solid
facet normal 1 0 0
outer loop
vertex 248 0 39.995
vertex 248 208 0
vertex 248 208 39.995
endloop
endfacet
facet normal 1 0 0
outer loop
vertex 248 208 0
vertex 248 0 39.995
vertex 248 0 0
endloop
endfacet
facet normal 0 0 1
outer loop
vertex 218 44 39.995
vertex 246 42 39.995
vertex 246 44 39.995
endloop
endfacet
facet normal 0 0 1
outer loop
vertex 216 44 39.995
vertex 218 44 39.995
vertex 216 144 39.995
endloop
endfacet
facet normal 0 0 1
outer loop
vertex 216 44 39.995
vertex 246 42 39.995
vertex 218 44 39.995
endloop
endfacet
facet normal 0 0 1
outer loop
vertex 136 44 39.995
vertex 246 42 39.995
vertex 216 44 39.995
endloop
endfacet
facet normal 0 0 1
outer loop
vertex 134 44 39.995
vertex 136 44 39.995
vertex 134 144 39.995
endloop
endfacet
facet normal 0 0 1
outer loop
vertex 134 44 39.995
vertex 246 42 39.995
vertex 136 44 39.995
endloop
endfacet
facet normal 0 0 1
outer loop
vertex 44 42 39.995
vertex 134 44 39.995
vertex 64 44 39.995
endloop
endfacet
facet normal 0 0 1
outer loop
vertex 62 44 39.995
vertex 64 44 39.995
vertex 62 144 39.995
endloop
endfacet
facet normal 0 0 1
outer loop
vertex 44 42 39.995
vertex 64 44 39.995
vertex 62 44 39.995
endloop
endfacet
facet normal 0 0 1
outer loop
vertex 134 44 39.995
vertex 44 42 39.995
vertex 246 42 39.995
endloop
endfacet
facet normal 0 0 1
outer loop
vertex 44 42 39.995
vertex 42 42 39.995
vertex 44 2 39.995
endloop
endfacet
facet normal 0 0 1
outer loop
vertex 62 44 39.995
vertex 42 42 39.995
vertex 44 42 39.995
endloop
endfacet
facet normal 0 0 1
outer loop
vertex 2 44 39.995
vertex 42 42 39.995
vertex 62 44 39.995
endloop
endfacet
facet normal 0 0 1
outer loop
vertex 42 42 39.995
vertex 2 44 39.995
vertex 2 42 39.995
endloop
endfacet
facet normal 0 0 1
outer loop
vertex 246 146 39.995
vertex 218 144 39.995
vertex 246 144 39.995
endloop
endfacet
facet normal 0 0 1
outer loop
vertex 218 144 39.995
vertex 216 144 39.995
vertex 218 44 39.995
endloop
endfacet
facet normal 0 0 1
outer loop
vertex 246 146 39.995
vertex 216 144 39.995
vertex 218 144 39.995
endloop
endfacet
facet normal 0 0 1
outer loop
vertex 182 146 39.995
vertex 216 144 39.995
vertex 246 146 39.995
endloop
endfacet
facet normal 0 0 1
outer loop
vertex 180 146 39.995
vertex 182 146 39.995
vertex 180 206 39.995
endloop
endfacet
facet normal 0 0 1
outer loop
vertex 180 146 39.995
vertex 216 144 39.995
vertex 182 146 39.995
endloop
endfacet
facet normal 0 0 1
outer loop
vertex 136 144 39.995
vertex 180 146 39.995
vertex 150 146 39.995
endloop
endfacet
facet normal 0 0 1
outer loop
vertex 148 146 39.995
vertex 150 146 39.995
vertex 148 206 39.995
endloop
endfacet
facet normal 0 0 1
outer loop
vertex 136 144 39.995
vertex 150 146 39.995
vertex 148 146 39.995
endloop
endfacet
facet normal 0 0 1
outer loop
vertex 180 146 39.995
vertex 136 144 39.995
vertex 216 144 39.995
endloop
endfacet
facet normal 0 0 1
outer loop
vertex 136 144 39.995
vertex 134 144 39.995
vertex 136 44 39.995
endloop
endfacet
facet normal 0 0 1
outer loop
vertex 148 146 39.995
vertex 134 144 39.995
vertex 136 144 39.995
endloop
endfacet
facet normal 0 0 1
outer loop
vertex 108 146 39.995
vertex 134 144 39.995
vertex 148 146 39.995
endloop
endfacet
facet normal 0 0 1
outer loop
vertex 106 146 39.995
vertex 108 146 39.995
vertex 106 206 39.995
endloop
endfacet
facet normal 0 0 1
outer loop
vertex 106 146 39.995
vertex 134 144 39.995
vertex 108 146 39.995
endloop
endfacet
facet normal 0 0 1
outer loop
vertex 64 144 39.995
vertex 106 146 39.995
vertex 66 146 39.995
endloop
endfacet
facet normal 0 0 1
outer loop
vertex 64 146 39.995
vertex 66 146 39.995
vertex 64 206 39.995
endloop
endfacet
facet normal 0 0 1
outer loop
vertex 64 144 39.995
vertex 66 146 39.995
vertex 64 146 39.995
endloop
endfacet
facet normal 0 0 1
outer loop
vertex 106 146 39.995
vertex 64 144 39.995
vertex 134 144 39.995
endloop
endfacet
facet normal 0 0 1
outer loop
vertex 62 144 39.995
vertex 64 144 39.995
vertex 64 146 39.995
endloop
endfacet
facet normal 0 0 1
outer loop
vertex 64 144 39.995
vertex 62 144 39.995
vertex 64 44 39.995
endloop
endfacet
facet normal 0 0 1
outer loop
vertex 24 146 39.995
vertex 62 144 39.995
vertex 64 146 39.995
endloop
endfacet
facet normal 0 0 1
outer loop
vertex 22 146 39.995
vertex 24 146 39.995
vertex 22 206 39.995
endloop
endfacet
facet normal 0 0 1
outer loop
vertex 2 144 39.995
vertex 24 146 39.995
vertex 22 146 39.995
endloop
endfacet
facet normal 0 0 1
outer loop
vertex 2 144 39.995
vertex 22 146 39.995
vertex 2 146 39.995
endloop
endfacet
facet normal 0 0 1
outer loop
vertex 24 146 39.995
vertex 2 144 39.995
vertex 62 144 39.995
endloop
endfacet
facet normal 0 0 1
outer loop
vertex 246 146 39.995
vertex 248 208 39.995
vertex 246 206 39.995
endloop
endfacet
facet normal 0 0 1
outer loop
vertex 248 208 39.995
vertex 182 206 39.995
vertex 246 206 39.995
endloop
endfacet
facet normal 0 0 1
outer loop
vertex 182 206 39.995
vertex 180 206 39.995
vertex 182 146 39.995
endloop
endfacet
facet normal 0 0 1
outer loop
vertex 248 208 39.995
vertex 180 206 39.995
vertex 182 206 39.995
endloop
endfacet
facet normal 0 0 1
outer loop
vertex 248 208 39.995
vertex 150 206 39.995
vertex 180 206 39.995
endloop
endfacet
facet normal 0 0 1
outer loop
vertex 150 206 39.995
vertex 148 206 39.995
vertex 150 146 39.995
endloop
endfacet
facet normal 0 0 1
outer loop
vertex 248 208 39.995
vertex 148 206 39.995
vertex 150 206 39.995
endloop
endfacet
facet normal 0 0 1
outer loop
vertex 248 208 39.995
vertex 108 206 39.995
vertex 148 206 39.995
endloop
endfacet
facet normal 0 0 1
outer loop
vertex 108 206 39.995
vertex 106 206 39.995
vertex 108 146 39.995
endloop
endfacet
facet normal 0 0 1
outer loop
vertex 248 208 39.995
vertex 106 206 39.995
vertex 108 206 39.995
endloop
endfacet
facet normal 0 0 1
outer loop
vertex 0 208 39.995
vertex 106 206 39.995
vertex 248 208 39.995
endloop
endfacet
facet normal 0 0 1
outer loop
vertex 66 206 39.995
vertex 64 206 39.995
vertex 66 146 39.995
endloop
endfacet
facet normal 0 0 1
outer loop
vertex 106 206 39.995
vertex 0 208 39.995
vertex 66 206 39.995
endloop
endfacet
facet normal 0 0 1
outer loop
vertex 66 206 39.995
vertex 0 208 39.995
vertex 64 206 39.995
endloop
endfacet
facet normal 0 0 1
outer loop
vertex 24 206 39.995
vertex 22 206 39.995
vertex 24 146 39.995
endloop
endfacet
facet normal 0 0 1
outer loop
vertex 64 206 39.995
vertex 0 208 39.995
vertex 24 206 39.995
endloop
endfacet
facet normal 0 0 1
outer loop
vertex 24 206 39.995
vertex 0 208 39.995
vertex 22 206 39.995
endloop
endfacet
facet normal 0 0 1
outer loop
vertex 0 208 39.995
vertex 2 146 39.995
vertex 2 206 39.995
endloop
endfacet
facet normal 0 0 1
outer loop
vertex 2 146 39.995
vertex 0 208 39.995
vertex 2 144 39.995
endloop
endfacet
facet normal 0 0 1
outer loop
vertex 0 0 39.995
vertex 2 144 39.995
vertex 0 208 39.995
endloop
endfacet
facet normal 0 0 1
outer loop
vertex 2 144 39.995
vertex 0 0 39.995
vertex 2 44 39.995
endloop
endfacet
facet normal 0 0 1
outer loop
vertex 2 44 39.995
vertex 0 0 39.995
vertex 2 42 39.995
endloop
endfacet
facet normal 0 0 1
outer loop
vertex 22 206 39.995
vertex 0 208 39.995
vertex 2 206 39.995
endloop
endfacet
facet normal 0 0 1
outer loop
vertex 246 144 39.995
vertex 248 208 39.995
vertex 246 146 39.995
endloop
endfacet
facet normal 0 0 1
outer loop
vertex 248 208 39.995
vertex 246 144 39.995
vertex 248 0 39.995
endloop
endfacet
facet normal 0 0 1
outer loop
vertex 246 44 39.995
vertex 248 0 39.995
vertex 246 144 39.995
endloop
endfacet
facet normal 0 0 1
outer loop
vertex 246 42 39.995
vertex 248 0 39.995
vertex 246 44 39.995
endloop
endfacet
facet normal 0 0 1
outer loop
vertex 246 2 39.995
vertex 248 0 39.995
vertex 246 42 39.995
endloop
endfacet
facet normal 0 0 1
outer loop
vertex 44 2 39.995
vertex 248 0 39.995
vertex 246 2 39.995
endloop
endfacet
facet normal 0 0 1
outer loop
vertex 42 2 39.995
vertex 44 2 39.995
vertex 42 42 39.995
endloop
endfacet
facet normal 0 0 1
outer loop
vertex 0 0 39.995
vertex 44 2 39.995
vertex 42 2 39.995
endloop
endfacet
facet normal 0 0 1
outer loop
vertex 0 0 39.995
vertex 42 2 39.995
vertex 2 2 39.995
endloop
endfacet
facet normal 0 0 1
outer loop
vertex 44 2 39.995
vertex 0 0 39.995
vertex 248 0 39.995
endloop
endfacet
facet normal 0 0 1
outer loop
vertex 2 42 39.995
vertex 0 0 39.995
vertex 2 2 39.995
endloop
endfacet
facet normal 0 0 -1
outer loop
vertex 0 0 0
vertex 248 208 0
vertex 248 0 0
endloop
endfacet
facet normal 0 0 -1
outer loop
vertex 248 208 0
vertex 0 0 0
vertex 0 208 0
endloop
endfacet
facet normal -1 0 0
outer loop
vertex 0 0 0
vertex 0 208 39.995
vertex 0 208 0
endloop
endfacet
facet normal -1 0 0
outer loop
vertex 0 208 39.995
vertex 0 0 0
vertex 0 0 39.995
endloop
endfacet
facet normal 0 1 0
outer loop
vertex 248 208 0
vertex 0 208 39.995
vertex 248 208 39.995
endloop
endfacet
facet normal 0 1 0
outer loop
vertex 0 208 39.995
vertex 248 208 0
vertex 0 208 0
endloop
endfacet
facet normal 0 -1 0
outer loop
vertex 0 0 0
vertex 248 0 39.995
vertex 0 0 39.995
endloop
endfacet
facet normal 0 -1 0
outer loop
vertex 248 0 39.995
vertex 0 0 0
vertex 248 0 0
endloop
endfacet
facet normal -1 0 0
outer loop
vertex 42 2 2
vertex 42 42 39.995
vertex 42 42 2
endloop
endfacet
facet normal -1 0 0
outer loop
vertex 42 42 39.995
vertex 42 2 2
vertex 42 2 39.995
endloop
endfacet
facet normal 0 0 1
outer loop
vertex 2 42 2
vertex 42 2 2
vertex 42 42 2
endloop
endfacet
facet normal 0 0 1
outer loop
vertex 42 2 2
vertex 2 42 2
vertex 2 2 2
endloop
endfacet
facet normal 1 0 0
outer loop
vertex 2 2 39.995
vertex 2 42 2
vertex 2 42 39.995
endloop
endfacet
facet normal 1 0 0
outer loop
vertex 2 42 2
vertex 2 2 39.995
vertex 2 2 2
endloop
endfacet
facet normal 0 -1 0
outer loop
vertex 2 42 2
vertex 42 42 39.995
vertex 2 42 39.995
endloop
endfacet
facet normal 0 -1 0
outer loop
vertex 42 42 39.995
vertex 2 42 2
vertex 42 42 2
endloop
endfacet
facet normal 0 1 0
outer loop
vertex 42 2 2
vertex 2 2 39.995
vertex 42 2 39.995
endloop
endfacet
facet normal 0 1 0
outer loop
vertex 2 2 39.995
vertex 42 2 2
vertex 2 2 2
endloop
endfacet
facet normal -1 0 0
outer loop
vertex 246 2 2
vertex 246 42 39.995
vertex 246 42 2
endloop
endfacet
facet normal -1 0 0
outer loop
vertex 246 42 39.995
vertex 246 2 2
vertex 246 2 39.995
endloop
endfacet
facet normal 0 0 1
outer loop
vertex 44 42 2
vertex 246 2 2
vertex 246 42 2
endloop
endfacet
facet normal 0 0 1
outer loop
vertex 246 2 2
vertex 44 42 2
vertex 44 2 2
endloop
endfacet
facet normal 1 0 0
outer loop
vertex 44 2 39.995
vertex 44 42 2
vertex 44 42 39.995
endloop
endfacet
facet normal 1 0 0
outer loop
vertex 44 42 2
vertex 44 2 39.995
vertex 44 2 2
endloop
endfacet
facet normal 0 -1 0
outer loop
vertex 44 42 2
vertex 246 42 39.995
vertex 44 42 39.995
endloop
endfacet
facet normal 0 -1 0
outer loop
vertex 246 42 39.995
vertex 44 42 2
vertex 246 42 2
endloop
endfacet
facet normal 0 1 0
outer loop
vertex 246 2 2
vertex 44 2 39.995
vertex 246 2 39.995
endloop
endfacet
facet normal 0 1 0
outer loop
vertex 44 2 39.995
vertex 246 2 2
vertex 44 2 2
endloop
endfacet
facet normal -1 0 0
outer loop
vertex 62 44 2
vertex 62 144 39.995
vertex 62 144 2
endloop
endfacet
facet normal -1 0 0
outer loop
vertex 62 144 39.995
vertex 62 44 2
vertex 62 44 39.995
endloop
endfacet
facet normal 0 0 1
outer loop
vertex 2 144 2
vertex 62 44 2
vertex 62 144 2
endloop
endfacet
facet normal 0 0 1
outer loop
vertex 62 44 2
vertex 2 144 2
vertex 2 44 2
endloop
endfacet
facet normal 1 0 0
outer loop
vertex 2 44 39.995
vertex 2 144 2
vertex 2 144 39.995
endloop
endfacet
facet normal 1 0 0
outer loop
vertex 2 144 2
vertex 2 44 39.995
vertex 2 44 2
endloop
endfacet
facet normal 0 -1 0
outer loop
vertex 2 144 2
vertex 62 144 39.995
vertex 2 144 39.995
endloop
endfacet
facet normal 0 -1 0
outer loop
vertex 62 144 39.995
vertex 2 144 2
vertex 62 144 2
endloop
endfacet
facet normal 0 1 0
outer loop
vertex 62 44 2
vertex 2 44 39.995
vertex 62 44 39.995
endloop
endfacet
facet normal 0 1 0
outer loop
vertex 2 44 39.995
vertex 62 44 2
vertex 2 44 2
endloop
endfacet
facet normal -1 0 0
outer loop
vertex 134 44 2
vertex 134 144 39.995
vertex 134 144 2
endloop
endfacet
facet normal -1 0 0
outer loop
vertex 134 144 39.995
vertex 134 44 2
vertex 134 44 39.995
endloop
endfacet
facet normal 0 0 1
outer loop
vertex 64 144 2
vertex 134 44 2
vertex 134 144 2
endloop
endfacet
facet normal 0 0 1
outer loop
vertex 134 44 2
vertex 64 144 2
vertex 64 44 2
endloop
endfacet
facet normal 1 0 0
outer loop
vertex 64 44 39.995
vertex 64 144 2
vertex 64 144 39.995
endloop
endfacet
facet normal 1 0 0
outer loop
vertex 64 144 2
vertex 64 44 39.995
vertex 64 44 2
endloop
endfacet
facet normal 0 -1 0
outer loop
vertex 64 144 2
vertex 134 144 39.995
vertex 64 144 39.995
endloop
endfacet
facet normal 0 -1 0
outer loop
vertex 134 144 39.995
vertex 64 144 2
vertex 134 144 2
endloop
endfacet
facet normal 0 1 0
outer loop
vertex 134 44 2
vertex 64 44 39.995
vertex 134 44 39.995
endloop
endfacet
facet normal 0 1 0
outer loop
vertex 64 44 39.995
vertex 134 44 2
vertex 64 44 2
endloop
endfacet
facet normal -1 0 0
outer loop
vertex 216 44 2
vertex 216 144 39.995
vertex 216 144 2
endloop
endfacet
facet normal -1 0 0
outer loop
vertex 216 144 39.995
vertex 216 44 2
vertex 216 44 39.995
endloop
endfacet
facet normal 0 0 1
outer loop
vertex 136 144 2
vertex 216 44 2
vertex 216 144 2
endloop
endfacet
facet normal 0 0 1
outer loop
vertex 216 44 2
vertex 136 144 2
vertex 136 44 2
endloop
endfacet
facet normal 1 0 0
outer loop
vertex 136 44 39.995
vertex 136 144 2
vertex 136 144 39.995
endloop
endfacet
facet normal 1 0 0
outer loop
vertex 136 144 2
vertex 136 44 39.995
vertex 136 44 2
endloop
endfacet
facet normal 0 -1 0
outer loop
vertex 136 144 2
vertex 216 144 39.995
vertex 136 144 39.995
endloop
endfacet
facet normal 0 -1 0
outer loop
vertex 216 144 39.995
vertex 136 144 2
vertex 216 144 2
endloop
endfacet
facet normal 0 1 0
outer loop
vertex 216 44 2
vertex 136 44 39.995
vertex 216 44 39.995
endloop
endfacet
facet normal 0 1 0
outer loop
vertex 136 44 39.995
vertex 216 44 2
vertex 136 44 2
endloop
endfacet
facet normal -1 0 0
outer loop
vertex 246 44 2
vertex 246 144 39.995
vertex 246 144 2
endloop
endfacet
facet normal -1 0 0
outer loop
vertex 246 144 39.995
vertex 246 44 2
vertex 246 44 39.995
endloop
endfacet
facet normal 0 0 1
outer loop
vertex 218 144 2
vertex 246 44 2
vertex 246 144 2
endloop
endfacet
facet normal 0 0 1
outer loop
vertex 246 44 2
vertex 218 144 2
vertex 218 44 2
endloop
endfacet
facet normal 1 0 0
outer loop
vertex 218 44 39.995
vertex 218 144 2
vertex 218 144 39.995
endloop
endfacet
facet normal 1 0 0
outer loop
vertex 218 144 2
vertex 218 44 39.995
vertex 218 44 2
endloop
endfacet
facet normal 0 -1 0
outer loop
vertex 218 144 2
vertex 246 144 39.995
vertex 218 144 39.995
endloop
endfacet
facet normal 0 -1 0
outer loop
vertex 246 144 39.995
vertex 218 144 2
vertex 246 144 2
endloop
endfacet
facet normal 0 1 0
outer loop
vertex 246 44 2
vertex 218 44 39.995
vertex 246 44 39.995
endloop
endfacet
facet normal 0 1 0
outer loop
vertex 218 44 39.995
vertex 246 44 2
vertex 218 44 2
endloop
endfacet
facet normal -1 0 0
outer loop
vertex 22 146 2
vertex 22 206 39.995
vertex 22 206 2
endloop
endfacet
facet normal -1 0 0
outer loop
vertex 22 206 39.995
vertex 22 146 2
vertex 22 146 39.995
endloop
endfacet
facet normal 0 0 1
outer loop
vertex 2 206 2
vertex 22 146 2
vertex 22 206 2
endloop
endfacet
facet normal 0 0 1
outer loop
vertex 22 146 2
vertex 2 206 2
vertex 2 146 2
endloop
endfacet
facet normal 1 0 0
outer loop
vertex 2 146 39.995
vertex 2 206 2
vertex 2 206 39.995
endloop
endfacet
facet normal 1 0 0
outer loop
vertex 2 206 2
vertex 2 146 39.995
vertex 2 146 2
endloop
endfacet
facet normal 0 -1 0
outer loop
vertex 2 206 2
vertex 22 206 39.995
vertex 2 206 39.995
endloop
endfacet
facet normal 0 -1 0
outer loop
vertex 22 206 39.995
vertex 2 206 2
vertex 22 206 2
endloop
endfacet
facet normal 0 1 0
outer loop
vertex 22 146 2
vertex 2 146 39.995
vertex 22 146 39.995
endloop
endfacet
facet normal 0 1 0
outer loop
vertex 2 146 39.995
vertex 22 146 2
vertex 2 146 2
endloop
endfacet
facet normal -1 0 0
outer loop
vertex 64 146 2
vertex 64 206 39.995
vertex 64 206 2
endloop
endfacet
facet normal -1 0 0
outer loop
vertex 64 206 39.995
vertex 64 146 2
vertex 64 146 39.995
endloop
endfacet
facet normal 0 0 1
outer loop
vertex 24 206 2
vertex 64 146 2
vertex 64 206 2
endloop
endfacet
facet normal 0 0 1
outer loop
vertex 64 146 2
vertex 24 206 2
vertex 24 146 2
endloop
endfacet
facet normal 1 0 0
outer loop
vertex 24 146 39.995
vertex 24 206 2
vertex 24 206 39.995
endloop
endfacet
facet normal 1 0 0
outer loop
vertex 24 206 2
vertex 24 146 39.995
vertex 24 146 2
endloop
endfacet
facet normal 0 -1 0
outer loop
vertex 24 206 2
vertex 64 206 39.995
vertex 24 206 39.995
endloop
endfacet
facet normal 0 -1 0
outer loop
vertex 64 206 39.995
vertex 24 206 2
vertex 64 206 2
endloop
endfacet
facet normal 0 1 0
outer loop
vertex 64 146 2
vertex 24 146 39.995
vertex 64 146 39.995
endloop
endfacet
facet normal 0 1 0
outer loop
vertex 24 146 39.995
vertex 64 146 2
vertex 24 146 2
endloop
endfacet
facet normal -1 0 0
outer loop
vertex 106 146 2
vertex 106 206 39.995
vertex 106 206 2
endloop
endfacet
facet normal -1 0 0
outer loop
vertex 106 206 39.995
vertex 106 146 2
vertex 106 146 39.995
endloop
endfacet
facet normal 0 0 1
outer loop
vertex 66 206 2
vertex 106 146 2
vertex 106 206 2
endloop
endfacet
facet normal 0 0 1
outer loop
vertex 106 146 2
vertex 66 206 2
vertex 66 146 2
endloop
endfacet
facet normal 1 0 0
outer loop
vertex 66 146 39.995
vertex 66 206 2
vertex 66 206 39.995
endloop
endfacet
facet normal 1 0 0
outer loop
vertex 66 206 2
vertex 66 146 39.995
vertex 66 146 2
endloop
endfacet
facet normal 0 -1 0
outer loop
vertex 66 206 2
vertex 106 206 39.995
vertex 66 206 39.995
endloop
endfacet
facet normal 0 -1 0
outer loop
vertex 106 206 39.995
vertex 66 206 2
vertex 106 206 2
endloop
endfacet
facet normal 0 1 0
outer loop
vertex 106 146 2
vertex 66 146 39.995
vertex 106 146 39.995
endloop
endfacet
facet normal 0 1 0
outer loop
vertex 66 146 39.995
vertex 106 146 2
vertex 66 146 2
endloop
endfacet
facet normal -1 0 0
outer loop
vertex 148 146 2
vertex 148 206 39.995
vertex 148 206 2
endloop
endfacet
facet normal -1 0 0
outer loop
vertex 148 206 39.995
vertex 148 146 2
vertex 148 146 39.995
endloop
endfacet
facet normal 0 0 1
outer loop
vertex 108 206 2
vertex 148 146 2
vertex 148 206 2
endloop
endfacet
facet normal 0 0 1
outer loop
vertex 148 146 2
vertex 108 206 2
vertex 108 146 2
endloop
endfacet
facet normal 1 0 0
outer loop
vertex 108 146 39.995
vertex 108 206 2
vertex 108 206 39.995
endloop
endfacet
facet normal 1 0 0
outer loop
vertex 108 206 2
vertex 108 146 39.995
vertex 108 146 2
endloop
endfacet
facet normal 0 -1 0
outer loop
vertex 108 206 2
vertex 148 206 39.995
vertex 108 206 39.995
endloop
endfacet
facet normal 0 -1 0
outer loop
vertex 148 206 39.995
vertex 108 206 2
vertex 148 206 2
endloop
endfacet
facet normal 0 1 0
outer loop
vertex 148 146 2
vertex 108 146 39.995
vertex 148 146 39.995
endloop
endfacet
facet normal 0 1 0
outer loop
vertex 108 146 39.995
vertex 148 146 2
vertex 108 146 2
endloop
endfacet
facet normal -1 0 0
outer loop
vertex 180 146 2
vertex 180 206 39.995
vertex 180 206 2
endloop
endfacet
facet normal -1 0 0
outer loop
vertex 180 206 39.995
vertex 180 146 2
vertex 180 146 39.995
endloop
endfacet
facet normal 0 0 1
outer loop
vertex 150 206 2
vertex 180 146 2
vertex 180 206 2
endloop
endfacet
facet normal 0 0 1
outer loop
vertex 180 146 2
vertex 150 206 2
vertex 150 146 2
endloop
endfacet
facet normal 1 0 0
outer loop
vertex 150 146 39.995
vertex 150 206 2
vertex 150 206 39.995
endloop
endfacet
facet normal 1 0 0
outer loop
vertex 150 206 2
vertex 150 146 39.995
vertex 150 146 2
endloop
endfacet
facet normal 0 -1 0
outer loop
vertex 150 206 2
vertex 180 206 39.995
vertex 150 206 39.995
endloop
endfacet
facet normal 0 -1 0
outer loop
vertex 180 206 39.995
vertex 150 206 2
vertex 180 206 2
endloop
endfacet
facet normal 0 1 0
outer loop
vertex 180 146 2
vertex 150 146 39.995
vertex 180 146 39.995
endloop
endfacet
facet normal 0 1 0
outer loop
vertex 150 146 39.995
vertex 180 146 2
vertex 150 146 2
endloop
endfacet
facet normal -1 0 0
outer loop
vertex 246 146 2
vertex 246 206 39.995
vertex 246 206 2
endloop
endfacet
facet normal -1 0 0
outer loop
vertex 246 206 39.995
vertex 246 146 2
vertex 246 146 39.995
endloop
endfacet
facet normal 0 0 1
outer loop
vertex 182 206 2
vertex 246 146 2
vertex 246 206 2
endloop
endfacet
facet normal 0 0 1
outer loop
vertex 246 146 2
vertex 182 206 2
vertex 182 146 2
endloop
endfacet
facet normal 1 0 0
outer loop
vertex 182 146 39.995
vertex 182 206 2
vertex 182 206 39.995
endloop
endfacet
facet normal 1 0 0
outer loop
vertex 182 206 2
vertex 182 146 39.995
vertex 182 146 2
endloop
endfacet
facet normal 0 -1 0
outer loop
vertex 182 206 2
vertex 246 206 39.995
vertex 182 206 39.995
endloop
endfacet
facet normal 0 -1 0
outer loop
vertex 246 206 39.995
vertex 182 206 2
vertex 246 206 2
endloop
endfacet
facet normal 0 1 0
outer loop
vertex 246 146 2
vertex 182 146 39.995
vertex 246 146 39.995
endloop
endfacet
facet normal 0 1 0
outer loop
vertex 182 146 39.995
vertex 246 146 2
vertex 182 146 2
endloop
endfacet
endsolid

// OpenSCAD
height=40;
thickness=2;

difference() {

cube([248,208,height-0.005]);

  translate([2,2,2]) cube([40,40,height]);
  translate([44,2,2]) cube([202,40,height]);

  translate([2,44,2]) cube([60,100,height]);
  translate([64,44,2]) cube([70,100,height]);
  translate([136,44,2]) cube([80,100,height]);
  translate([218,44,2]) cube([28,100,height]);

  translate([2,146,2]) cube([20,60,height]);
  translate([24,146,2]) cube([40,60,height]);
  translate([66,146,2]) cube([40,60,height]);
  translate([108,146,2]) cube([40,60,height]);
  translate([150,146,2]) cube([30,60,height]);
  translate([182,146,2]) cube([64,60,height]);

}
